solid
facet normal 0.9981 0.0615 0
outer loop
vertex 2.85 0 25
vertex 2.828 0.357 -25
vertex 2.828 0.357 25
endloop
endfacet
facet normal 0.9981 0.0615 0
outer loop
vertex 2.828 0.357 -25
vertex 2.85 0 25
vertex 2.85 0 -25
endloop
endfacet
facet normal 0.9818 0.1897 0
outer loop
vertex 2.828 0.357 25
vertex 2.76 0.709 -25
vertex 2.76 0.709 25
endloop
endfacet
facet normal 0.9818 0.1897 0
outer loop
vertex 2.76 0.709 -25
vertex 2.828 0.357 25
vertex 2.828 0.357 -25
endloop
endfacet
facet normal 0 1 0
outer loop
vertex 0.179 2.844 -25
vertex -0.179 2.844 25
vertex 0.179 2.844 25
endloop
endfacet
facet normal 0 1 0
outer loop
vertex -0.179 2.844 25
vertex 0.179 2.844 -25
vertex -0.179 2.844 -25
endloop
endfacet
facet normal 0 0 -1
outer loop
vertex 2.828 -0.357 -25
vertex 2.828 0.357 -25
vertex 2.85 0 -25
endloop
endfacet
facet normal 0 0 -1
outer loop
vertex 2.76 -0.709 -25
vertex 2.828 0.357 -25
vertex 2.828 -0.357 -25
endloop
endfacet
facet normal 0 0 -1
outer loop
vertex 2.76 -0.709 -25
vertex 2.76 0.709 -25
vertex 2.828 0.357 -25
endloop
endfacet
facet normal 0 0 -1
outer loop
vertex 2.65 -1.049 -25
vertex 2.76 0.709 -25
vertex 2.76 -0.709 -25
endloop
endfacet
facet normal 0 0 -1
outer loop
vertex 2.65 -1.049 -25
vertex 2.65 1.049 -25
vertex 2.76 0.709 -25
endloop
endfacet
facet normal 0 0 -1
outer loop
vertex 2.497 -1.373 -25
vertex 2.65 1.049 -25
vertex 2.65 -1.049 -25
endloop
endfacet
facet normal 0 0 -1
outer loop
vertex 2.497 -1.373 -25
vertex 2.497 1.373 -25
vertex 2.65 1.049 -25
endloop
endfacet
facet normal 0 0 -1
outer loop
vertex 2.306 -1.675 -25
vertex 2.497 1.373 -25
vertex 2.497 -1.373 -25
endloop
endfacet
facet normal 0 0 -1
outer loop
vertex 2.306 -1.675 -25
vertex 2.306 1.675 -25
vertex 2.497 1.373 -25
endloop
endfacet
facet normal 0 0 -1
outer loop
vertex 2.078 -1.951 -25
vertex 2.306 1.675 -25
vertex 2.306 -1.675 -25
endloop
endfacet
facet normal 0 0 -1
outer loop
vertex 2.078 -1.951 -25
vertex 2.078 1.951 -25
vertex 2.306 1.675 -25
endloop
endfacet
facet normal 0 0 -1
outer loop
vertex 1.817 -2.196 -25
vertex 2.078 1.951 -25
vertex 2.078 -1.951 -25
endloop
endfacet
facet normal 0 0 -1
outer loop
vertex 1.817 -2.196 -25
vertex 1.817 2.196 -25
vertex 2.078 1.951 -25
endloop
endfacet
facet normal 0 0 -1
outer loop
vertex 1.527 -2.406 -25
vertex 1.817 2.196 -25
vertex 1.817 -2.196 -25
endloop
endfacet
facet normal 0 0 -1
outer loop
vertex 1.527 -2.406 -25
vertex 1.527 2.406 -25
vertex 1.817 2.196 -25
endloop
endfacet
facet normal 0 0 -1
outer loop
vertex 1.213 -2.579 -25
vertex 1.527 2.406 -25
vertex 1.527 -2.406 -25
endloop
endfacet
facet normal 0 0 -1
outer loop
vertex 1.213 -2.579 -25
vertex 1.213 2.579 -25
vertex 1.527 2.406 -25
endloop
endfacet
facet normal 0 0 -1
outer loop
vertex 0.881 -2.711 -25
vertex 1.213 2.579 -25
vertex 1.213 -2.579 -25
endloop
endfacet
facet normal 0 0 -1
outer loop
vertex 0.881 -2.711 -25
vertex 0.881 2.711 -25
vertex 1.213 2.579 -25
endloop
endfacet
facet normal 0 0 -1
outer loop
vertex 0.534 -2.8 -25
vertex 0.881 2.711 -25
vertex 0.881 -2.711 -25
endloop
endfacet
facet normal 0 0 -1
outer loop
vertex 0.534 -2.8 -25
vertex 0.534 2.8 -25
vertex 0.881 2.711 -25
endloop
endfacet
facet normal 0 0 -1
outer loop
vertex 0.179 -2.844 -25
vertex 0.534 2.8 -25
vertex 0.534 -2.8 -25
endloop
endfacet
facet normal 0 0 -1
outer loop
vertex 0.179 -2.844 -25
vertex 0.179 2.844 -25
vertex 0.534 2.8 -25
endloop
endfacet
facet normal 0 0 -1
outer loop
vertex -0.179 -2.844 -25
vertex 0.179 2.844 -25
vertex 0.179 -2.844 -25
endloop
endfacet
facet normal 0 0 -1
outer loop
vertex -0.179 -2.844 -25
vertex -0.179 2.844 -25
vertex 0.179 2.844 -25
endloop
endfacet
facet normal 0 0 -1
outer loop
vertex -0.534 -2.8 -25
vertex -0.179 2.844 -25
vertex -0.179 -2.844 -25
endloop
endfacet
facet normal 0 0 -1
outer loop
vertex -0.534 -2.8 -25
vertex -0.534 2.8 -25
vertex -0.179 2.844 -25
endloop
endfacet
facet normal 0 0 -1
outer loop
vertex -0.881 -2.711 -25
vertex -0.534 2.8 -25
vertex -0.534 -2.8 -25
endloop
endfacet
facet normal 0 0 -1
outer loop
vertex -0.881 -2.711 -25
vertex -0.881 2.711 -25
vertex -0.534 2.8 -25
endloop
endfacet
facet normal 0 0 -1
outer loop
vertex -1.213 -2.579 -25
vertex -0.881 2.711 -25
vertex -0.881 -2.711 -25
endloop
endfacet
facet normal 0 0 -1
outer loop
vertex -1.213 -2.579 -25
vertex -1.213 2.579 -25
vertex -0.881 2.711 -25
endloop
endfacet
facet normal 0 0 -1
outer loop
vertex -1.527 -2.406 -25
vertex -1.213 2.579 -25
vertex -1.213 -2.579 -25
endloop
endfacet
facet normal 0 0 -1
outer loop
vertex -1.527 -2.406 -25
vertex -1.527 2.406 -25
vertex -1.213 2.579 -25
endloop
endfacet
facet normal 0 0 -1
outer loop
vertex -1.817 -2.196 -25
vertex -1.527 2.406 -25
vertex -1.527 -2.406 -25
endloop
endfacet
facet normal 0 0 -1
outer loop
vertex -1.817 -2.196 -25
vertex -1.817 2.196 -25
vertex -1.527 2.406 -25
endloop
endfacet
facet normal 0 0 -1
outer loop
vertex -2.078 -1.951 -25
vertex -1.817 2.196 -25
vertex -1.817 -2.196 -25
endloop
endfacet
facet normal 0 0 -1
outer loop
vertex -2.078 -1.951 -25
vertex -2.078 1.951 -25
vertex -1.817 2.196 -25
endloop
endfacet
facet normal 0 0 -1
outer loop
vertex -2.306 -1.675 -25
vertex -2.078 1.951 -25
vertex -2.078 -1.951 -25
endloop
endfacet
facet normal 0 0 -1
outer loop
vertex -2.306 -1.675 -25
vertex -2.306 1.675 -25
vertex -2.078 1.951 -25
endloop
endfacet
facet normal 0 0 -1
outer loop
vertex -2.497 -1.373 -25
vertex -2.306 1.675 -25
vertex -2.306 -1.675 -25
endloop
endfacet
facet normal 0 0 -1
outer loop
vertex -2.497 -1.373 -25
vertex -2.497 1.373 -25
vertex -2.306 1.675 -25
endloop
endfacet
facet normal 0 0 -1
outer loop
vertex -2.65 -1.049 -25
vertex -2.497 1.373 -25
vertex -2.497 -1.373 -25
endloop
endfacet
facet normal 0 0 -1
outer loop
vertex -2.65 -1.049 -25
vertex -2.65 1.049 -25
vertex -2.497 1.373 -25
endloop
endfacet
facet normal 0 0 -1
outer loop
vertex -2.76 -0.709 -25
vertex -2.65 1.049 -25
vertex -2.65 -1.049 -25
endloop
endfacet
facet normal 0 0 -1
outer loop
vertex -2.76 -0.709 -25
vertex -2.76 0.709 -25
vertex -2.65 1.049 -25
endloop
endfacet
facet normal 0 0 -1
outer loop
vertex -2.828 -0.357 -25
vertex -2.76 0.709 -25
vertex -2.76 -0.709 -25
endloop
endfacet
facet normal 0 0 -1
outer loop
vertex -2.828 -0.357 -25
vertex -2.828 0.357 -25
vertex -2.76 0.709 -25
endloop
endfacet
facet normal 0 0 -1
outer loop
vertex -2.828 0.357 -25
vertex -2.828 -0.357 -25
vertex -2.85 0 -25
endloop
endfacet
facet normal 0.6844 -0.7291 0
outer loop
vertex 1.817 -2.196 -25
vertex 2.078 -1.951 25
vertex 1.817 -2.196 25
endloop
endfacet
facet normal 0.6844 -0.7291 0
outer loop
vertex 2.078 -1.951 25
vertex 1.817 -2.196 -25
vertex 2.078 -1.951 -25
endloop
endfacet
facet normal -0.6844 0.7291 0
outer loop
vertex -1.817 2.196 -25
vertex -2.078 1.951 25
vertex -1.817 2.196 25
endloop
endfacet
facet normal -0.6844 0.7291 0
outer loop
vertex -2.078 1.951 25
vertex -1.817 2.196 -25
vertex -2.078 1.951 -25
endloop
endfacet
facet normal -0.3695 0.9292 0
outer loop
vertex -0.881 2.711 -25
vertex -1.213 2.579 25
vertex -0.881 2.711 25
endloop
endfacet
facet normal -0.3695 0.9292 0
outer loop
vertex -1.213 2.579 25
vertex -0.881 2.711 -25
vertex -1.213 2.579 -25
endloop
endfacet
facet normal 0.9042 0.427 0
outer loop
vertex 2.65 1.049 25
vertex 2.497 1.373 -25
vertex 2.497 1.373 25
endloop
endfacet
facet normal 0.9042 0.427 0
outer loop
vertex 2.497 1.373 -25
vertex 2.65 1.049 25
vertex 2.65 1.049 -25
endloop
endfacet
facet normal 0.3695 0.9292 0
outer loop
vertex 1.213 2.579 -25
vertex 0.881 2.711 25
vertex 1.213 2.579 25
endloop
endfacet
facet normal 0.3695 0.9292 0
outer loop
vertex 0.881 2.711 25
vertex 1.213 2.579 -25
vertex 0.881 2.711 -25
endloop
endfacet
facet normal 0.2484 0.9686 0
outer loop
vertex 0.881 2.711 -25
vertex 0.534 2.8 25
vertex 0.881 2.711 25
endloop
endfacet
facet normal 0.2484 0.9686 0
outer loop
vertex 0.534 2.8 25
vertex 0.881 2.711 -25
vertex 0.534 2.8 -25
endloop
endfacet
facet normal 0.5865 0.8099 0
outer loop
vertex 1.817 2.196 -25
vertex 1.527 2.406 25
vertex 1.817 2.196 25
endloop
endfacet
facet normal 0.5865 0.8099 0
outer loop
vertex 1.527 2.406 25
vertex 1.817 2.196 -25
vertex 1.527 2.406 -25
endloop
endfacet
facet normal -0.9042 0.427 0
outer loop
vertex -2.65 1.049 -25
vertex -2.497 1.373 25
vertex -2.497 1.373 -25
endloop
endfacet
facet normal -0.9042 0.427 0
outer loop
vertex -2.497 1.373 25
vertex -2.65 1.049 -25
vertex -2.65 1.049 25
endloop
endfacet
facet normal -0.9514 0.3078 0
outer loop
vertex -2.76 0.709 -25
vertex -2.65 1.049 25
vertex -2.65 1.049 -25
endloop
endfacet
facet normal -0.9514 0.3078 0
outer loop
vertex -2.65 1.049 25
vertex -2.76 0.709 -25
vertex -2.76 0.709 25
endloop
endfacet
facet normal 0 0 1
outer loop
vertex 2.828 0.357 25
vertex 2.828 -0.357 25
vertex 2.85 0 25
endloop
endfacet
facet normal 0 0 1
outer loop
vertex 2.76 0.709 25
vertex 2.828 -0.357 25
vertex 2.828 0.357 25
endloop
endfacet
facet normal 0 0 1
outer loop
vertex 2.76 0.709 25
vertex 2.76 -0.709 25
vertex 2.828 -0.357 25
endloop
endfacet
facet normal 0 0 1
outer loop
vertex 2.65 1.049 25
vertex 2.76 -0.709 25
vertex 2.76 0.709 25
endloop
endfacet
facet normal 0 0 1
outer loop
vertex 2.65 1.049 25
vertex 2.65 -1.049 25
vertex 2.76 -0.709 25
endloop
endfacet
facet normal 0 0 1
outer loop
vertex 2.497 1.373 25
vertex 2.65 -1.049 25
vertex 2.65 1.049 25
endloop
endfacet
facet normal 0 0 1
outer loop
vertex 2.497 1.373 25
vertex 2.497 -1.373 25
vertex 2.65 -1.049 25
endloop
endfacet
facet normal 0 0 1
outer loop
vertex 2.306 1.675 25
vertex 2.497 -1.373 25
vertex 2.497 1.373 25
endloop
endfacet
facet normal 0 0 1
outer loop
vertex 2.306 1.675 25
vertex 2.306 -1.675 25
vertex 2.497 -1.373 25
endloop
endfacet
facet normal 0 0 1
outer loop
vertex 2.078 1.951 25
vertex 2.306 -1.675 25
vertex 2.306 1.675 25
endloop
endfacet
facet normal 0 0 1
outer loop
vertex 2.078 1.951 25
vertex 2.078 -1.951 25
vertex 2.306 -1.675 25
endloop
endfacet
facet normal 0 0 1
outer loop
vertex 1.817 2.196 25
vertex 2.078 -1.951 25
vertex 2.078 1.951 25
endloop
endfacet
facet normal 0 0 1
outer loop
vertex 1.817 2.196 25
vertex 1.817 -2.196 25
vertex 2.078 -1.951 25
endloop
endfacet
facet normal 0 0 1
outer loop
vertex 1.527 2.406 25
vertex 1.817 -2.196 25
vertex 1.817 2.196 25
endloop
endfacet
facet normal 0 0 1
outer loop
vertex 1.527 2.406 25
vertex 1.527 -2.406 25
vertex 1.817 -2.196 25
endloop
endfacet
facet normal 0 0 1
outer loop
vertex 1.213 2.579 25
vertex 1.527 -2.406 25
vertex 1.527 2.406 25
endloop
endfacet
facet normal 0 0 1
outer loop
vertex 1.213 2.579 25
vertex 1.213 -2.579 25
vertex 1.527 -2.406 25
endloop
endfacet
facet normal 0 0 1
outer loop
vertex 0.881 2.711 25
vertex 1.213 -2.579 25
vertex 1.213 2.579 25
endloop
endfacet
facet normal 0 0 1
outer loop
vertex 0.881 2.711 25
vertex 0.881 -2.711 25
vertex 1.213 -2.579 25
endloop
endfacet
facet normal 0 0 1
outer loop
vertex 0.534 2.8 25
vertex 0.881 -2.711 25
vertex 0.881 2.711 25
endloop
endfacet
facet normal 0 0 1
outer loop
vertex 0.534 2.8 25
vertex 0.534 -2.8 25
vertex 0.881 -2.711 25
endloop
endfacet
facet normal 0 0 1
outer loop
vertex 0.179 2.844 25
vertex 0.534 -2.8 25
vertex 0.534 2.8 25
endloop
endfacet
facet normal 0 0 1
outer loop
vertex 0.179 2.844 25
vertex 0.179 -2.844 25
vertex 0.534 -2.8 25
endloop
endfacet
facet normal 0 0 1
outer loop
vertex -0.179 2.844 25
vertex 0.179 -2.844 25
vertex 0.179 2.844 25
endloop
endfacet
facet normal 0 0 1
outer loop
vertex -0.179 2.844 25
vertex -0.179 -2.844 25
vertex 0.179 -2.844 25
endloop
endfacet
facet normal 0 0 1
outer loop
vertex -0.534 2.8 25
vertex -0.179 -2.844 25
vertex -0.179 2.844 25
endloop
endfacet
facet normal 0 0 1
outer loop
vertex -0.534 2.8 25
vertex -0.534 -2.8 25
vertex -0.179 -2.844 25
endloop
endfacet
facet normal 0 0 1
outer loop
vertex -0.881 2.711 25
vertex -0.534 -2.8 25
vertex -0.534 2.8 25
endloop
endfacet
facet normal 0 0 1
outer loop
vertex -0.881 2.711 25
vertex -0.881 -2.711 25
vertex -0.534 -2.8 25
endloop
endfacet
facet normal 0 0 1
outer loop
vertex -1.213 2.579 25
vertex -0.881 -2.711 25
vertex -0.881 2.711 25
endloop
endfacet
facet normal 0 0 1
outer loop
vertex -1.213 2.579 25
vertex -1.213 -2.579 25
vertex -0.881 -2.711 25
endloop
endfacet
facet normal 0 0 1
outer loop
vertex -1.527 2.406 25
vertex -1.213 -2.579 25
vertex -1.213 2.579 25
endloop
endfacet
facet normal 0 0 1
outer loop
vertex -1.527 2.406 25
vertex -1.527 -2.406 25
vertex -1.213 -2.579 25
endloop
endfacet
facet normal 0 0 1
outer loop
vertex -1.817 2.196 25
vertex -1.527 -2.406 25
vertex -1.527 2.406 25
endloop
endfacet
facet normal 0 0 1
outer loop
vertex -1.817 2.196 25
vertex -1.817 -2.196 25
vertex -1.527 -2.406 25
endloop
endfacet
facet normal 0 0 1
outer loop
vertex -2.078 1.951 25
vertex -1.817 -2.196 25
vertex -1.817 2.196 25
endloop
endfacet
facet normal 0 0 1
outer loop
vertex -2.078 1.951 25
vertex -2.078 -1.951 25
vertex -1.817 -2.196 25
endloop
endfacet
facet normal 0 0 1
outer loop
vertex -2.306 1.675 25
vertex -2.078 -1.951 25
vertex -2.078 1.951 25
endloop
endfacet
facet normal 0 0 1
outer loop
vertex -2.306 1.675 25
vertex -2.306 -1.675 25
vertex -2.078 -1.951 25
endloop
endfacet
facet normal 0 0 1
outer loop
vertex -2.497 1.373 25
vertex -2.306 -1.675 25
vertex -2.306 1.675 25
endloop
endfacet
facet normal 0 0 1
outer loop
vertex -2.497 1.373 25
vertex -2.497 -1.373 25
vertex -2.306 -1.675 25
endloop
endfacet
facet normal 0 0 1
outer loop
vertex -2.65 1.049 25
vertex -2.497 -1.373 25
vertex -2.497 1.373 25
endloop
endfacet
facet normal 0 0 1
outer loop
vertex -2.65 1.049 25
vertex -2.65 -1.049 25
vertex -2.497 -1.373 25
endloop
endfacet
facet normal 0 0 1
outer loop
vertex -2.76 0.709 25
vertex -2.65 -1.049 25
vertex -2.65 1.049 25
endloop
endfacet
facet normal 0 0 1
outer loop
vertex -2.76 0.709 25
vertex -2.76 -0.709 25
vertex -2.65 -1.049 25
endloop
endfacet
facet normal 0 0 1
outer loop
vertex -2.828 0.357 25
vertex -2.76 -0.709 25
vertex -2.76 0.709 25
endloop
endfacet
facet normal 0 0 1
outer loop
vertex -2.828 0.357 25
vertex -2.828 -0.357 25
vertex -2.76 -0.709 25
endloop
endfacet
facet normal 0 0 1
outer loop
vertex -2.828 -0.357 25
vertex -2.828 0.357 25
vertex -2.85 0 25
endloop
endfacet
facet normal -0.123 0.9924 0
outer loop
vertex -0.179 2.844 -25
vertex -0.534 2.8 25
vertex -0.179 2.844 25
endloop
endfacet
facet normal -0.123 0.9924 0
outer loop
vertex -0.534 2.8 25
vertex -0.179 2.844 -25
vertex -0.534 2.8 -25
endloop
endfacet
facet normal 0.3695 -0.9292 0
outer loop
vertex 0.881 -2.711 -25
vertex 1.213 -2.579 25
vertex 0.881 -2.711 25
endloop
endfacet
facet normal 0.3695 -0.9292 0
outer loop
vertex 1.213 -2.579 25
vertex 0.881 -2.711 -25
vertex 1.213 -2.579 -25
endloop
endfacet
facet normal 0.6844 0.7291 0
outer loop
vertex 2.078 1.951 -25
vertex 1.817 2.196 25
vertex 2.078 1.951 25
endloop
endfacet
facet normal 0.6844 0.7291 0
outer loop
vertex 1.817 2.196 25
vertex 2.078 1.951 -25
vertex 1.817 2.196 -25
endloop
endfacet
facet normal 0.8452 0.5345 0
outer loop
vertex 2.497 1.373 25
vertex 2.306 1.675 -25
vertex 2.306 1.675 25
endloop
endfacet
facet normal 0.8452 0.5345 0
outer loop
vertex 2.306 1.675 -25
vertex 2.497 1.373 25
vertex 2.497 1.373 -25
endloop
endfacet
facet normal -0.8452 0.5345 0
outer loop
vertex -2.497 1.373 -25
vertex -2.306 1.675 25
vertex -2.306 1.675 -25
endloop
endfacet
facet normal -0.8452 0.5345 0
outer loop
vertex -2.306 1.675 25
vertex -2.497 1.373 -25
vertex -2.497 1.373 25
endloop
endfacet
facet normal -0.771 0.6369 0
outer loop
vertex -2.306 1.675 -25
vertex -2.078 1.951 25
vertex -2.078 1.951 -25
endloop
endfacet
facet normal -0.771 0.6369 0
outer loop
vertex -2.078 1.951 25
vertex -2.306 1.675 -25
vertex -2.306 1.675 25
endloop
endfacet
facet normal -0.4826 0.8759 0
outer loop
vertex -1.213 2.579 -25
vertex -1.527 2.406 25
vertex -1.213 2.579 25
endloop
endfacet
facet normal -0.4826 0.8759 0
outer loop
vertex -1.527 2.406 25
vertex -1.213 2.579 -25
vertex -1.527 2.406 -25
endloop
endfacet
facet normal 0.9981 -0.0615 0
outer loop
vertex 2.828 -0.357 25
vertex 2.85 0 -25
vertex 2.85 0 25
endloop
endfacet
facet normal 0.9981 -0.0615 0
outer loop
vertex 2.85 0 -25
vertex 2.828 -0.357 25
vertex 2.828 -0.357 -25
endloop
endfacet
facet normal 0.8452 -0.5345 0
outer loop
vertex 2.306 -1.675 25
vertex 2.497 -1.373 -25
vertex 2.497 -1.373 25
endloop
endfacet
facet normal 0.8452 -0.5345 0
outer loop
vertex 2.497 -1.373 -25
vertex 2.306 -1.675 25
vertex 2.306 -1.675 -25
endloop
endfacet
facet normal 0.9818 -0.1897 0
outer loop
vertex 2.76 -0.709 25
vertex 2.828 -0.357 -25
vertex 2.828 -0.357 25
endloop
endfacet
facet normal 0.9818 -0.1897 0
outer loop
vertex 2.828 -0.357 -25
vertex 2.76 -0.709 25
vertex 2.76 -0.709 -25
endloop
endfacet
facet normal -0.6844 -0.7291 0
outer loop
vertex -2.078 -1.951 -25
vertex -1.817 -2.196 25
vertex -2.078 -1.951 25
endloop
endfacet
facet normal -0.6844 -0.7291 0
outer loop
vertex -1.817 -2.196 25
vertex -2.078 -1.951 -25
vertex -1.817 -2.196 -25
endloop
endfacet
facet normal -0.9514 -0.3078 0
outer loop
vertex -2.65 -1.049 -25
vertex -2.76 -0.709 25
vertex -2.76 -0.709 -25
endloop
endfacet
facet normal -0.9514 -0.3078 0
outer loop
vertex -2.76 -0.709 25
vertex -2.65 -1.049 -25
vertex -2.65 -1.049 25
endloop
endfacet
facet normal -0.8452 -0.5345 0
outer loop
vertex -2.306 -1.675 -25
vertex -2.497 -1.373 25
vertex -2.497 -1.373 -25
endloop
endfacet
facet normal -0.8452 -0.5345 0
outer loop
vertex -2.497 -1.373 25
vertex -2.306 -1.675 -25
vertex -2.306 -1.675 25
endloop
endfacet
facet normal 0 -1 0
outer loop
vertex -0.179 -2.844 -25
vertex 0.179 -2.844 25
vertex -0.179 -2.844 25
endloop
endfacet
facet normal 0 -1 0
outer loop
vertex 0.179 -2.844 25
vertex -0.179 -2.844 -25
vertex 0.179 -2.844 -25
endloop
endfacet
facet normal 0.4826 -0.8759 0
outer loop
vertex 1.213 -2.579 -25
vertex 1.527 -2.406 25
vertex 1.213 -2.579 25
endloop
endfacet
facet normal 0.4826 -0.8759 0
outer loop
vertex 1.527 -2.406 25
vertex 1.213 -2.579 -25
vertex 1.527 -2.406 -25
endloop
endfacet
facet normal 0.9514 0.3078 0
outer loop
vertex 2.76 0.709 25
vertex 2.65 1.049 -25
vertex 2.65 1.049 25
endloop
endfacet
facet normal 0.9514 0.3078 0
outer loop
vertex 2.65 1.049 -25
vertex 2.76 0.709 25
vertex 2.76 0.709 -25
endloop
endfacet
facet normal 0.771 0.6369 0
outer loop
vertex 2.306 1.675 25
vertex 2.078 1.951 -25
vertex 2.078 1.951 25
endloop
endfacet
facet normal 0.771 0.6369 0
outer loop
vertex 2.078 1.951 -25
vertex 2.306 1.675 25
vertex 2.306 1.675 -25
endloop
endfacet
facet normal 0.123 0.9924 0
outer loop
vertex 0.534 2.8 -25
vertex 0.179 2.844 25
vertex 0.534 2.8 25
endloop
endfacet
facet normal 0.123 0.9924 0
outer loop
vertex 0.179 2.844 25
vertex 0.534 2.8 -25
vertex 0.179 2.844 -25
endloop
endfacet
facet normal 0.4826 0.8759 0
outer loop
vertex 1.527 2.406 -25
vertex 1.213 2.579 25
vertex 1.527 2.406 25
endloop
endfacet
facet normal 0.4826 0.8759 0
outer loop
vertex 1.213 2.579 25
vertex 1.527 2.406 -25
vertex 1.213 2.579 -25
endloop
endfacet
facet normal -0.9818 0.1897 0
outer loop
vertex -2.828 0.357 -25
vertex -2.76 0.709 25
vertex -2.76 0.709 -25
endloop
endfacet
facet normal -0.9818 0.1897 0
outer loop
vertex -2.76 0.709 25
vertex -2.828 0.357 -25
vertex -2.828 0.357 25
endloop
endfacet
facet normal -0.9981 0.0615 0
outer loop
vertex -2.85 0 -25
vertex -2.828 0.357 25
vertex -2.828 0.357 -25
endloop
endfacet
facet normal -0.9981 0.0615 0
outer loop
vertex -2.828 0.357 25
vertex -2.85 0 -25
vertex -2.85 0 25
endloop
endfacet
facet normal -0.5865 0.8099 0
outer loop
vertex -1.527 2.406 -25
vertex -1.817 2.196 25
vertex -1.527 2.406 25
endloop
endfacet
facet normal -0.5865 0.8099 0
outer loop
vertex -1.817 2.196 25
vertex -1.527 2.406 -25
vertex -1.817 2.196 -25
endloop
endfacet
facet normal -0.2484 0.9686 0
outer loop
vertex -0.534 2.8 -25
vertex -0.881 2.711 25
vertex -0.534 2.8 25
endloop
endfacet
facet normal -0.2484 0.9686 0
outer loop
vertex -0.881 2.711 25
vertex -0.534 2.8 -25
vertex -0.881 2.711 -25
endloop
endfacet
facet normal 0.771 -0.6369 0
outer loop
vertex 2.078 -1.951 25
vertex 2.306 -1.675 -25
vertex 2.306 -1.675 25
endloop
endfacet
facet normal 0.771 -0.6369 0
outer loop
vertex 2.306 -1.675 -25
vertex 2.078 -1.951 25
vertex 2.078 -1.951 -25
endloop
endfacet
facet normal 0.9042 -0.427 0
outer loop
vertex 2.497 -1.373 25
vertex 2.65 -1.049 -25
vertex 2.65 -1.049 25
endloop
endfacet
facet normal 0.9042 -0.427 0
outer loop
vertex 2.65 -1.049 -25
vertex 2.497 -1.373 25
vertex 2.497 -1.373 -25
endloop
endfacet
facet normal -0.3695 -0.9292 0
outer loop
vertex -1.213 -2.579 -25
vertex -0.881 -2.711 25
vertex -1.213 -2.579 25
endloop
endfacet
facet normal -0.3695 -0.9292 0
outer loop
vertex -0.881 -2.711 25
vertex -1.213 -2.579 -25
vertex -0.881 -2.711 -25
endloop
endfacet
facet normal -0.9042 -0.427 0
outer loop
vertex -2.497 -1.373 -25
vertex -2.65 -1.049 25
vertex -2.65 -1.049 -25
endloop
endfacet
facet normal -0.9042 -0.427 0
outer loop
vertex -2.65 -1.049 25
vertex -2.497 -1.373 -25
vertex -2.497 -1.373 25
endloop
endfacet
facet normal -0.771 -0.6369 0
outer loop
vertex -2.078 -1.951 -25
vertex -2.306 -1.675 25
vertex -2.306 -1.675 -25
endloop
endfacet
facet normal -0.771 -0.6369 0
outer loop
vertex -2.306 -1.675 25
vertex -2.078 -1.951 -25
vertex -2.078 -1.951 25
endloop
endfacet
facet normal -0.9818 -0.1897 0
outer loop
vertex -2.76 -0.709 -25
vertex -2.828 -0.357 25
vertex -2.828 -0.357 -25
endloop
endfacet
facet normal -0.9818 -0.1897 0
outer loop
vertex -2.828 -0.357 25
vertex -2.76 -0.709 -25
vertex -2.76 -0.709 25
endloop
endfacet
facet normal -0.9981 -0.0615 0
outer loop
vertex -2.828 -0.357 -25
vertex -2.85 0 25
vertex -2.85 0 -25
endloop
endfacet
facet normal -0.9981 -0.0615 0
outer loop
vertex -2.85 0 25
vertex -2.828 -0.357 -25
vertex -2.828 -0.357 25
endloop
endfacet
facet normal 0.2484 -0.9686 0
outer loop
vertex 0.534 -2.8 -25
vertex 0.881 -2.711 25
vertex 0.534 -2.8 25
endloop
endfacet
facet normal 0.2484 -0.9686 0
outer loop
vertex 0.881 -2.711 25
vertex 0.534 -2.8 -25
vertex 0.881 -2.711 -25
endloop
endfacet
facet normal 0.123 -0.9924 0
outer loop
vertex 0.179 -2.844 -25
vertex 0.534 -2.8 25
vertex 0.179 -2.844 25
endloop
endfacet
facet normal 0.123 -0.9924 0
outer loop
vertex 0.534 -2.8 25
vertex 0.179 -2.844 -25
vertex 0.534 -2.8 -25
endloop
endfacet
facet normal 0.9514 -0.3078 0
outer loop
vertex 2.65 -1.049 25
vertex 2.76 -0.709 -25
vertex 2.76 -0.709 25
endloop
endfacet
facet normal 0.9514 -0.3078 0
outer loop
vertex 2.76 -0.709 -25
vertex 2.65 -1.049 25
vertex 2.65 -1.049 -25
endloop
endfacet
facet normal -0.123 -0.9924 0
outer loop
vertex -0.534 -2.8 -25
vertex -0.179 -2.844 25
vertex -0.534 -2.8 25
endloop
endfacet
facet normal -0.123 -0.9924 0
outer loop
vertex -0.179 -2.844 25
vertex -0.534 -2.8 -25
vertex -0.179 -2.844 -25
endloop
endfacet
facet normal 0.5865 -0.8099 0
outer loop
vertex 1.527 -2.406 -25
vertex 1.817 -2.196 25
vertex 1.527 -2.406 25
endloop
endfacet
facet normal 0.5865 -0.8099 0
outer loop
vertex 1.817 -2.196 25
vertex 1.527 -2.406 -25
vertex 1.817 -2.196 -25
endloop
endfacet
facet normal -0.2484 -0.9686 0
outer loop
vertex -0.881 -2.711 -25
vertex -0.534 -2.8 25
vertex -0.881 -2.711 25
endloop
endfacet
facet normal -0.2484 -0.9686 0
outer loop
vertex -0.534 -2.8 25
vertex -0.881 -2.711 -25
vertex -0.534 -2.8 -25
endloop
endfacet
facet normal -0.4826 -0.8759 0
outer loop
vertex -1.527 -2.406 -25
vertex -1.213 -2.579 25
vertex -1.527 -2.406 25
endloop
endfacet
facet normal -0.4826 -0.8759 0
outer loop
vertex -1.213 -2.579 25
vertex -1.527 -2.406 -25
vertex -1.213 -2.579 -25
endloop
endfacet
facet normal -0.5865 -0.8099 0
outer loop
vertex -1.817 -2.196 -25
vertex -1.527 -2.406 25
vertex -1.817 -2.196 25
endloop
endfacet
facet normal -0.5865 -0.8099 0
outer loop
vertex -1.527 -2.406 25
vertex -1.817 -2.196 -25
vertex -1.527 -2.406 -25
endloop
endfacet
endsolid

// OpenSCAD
$fn = 50;


difference() {
	union() {
		translate(v = [0, 0, -25.0000000000]) {
			cylinder(h = 50, r = 2.8500000000);
		}
	}
	union() {
		translate(v = [0, 0, -100.0000000000]) {
			cylinder(h = 200, r = 0);
		}
	}
}
